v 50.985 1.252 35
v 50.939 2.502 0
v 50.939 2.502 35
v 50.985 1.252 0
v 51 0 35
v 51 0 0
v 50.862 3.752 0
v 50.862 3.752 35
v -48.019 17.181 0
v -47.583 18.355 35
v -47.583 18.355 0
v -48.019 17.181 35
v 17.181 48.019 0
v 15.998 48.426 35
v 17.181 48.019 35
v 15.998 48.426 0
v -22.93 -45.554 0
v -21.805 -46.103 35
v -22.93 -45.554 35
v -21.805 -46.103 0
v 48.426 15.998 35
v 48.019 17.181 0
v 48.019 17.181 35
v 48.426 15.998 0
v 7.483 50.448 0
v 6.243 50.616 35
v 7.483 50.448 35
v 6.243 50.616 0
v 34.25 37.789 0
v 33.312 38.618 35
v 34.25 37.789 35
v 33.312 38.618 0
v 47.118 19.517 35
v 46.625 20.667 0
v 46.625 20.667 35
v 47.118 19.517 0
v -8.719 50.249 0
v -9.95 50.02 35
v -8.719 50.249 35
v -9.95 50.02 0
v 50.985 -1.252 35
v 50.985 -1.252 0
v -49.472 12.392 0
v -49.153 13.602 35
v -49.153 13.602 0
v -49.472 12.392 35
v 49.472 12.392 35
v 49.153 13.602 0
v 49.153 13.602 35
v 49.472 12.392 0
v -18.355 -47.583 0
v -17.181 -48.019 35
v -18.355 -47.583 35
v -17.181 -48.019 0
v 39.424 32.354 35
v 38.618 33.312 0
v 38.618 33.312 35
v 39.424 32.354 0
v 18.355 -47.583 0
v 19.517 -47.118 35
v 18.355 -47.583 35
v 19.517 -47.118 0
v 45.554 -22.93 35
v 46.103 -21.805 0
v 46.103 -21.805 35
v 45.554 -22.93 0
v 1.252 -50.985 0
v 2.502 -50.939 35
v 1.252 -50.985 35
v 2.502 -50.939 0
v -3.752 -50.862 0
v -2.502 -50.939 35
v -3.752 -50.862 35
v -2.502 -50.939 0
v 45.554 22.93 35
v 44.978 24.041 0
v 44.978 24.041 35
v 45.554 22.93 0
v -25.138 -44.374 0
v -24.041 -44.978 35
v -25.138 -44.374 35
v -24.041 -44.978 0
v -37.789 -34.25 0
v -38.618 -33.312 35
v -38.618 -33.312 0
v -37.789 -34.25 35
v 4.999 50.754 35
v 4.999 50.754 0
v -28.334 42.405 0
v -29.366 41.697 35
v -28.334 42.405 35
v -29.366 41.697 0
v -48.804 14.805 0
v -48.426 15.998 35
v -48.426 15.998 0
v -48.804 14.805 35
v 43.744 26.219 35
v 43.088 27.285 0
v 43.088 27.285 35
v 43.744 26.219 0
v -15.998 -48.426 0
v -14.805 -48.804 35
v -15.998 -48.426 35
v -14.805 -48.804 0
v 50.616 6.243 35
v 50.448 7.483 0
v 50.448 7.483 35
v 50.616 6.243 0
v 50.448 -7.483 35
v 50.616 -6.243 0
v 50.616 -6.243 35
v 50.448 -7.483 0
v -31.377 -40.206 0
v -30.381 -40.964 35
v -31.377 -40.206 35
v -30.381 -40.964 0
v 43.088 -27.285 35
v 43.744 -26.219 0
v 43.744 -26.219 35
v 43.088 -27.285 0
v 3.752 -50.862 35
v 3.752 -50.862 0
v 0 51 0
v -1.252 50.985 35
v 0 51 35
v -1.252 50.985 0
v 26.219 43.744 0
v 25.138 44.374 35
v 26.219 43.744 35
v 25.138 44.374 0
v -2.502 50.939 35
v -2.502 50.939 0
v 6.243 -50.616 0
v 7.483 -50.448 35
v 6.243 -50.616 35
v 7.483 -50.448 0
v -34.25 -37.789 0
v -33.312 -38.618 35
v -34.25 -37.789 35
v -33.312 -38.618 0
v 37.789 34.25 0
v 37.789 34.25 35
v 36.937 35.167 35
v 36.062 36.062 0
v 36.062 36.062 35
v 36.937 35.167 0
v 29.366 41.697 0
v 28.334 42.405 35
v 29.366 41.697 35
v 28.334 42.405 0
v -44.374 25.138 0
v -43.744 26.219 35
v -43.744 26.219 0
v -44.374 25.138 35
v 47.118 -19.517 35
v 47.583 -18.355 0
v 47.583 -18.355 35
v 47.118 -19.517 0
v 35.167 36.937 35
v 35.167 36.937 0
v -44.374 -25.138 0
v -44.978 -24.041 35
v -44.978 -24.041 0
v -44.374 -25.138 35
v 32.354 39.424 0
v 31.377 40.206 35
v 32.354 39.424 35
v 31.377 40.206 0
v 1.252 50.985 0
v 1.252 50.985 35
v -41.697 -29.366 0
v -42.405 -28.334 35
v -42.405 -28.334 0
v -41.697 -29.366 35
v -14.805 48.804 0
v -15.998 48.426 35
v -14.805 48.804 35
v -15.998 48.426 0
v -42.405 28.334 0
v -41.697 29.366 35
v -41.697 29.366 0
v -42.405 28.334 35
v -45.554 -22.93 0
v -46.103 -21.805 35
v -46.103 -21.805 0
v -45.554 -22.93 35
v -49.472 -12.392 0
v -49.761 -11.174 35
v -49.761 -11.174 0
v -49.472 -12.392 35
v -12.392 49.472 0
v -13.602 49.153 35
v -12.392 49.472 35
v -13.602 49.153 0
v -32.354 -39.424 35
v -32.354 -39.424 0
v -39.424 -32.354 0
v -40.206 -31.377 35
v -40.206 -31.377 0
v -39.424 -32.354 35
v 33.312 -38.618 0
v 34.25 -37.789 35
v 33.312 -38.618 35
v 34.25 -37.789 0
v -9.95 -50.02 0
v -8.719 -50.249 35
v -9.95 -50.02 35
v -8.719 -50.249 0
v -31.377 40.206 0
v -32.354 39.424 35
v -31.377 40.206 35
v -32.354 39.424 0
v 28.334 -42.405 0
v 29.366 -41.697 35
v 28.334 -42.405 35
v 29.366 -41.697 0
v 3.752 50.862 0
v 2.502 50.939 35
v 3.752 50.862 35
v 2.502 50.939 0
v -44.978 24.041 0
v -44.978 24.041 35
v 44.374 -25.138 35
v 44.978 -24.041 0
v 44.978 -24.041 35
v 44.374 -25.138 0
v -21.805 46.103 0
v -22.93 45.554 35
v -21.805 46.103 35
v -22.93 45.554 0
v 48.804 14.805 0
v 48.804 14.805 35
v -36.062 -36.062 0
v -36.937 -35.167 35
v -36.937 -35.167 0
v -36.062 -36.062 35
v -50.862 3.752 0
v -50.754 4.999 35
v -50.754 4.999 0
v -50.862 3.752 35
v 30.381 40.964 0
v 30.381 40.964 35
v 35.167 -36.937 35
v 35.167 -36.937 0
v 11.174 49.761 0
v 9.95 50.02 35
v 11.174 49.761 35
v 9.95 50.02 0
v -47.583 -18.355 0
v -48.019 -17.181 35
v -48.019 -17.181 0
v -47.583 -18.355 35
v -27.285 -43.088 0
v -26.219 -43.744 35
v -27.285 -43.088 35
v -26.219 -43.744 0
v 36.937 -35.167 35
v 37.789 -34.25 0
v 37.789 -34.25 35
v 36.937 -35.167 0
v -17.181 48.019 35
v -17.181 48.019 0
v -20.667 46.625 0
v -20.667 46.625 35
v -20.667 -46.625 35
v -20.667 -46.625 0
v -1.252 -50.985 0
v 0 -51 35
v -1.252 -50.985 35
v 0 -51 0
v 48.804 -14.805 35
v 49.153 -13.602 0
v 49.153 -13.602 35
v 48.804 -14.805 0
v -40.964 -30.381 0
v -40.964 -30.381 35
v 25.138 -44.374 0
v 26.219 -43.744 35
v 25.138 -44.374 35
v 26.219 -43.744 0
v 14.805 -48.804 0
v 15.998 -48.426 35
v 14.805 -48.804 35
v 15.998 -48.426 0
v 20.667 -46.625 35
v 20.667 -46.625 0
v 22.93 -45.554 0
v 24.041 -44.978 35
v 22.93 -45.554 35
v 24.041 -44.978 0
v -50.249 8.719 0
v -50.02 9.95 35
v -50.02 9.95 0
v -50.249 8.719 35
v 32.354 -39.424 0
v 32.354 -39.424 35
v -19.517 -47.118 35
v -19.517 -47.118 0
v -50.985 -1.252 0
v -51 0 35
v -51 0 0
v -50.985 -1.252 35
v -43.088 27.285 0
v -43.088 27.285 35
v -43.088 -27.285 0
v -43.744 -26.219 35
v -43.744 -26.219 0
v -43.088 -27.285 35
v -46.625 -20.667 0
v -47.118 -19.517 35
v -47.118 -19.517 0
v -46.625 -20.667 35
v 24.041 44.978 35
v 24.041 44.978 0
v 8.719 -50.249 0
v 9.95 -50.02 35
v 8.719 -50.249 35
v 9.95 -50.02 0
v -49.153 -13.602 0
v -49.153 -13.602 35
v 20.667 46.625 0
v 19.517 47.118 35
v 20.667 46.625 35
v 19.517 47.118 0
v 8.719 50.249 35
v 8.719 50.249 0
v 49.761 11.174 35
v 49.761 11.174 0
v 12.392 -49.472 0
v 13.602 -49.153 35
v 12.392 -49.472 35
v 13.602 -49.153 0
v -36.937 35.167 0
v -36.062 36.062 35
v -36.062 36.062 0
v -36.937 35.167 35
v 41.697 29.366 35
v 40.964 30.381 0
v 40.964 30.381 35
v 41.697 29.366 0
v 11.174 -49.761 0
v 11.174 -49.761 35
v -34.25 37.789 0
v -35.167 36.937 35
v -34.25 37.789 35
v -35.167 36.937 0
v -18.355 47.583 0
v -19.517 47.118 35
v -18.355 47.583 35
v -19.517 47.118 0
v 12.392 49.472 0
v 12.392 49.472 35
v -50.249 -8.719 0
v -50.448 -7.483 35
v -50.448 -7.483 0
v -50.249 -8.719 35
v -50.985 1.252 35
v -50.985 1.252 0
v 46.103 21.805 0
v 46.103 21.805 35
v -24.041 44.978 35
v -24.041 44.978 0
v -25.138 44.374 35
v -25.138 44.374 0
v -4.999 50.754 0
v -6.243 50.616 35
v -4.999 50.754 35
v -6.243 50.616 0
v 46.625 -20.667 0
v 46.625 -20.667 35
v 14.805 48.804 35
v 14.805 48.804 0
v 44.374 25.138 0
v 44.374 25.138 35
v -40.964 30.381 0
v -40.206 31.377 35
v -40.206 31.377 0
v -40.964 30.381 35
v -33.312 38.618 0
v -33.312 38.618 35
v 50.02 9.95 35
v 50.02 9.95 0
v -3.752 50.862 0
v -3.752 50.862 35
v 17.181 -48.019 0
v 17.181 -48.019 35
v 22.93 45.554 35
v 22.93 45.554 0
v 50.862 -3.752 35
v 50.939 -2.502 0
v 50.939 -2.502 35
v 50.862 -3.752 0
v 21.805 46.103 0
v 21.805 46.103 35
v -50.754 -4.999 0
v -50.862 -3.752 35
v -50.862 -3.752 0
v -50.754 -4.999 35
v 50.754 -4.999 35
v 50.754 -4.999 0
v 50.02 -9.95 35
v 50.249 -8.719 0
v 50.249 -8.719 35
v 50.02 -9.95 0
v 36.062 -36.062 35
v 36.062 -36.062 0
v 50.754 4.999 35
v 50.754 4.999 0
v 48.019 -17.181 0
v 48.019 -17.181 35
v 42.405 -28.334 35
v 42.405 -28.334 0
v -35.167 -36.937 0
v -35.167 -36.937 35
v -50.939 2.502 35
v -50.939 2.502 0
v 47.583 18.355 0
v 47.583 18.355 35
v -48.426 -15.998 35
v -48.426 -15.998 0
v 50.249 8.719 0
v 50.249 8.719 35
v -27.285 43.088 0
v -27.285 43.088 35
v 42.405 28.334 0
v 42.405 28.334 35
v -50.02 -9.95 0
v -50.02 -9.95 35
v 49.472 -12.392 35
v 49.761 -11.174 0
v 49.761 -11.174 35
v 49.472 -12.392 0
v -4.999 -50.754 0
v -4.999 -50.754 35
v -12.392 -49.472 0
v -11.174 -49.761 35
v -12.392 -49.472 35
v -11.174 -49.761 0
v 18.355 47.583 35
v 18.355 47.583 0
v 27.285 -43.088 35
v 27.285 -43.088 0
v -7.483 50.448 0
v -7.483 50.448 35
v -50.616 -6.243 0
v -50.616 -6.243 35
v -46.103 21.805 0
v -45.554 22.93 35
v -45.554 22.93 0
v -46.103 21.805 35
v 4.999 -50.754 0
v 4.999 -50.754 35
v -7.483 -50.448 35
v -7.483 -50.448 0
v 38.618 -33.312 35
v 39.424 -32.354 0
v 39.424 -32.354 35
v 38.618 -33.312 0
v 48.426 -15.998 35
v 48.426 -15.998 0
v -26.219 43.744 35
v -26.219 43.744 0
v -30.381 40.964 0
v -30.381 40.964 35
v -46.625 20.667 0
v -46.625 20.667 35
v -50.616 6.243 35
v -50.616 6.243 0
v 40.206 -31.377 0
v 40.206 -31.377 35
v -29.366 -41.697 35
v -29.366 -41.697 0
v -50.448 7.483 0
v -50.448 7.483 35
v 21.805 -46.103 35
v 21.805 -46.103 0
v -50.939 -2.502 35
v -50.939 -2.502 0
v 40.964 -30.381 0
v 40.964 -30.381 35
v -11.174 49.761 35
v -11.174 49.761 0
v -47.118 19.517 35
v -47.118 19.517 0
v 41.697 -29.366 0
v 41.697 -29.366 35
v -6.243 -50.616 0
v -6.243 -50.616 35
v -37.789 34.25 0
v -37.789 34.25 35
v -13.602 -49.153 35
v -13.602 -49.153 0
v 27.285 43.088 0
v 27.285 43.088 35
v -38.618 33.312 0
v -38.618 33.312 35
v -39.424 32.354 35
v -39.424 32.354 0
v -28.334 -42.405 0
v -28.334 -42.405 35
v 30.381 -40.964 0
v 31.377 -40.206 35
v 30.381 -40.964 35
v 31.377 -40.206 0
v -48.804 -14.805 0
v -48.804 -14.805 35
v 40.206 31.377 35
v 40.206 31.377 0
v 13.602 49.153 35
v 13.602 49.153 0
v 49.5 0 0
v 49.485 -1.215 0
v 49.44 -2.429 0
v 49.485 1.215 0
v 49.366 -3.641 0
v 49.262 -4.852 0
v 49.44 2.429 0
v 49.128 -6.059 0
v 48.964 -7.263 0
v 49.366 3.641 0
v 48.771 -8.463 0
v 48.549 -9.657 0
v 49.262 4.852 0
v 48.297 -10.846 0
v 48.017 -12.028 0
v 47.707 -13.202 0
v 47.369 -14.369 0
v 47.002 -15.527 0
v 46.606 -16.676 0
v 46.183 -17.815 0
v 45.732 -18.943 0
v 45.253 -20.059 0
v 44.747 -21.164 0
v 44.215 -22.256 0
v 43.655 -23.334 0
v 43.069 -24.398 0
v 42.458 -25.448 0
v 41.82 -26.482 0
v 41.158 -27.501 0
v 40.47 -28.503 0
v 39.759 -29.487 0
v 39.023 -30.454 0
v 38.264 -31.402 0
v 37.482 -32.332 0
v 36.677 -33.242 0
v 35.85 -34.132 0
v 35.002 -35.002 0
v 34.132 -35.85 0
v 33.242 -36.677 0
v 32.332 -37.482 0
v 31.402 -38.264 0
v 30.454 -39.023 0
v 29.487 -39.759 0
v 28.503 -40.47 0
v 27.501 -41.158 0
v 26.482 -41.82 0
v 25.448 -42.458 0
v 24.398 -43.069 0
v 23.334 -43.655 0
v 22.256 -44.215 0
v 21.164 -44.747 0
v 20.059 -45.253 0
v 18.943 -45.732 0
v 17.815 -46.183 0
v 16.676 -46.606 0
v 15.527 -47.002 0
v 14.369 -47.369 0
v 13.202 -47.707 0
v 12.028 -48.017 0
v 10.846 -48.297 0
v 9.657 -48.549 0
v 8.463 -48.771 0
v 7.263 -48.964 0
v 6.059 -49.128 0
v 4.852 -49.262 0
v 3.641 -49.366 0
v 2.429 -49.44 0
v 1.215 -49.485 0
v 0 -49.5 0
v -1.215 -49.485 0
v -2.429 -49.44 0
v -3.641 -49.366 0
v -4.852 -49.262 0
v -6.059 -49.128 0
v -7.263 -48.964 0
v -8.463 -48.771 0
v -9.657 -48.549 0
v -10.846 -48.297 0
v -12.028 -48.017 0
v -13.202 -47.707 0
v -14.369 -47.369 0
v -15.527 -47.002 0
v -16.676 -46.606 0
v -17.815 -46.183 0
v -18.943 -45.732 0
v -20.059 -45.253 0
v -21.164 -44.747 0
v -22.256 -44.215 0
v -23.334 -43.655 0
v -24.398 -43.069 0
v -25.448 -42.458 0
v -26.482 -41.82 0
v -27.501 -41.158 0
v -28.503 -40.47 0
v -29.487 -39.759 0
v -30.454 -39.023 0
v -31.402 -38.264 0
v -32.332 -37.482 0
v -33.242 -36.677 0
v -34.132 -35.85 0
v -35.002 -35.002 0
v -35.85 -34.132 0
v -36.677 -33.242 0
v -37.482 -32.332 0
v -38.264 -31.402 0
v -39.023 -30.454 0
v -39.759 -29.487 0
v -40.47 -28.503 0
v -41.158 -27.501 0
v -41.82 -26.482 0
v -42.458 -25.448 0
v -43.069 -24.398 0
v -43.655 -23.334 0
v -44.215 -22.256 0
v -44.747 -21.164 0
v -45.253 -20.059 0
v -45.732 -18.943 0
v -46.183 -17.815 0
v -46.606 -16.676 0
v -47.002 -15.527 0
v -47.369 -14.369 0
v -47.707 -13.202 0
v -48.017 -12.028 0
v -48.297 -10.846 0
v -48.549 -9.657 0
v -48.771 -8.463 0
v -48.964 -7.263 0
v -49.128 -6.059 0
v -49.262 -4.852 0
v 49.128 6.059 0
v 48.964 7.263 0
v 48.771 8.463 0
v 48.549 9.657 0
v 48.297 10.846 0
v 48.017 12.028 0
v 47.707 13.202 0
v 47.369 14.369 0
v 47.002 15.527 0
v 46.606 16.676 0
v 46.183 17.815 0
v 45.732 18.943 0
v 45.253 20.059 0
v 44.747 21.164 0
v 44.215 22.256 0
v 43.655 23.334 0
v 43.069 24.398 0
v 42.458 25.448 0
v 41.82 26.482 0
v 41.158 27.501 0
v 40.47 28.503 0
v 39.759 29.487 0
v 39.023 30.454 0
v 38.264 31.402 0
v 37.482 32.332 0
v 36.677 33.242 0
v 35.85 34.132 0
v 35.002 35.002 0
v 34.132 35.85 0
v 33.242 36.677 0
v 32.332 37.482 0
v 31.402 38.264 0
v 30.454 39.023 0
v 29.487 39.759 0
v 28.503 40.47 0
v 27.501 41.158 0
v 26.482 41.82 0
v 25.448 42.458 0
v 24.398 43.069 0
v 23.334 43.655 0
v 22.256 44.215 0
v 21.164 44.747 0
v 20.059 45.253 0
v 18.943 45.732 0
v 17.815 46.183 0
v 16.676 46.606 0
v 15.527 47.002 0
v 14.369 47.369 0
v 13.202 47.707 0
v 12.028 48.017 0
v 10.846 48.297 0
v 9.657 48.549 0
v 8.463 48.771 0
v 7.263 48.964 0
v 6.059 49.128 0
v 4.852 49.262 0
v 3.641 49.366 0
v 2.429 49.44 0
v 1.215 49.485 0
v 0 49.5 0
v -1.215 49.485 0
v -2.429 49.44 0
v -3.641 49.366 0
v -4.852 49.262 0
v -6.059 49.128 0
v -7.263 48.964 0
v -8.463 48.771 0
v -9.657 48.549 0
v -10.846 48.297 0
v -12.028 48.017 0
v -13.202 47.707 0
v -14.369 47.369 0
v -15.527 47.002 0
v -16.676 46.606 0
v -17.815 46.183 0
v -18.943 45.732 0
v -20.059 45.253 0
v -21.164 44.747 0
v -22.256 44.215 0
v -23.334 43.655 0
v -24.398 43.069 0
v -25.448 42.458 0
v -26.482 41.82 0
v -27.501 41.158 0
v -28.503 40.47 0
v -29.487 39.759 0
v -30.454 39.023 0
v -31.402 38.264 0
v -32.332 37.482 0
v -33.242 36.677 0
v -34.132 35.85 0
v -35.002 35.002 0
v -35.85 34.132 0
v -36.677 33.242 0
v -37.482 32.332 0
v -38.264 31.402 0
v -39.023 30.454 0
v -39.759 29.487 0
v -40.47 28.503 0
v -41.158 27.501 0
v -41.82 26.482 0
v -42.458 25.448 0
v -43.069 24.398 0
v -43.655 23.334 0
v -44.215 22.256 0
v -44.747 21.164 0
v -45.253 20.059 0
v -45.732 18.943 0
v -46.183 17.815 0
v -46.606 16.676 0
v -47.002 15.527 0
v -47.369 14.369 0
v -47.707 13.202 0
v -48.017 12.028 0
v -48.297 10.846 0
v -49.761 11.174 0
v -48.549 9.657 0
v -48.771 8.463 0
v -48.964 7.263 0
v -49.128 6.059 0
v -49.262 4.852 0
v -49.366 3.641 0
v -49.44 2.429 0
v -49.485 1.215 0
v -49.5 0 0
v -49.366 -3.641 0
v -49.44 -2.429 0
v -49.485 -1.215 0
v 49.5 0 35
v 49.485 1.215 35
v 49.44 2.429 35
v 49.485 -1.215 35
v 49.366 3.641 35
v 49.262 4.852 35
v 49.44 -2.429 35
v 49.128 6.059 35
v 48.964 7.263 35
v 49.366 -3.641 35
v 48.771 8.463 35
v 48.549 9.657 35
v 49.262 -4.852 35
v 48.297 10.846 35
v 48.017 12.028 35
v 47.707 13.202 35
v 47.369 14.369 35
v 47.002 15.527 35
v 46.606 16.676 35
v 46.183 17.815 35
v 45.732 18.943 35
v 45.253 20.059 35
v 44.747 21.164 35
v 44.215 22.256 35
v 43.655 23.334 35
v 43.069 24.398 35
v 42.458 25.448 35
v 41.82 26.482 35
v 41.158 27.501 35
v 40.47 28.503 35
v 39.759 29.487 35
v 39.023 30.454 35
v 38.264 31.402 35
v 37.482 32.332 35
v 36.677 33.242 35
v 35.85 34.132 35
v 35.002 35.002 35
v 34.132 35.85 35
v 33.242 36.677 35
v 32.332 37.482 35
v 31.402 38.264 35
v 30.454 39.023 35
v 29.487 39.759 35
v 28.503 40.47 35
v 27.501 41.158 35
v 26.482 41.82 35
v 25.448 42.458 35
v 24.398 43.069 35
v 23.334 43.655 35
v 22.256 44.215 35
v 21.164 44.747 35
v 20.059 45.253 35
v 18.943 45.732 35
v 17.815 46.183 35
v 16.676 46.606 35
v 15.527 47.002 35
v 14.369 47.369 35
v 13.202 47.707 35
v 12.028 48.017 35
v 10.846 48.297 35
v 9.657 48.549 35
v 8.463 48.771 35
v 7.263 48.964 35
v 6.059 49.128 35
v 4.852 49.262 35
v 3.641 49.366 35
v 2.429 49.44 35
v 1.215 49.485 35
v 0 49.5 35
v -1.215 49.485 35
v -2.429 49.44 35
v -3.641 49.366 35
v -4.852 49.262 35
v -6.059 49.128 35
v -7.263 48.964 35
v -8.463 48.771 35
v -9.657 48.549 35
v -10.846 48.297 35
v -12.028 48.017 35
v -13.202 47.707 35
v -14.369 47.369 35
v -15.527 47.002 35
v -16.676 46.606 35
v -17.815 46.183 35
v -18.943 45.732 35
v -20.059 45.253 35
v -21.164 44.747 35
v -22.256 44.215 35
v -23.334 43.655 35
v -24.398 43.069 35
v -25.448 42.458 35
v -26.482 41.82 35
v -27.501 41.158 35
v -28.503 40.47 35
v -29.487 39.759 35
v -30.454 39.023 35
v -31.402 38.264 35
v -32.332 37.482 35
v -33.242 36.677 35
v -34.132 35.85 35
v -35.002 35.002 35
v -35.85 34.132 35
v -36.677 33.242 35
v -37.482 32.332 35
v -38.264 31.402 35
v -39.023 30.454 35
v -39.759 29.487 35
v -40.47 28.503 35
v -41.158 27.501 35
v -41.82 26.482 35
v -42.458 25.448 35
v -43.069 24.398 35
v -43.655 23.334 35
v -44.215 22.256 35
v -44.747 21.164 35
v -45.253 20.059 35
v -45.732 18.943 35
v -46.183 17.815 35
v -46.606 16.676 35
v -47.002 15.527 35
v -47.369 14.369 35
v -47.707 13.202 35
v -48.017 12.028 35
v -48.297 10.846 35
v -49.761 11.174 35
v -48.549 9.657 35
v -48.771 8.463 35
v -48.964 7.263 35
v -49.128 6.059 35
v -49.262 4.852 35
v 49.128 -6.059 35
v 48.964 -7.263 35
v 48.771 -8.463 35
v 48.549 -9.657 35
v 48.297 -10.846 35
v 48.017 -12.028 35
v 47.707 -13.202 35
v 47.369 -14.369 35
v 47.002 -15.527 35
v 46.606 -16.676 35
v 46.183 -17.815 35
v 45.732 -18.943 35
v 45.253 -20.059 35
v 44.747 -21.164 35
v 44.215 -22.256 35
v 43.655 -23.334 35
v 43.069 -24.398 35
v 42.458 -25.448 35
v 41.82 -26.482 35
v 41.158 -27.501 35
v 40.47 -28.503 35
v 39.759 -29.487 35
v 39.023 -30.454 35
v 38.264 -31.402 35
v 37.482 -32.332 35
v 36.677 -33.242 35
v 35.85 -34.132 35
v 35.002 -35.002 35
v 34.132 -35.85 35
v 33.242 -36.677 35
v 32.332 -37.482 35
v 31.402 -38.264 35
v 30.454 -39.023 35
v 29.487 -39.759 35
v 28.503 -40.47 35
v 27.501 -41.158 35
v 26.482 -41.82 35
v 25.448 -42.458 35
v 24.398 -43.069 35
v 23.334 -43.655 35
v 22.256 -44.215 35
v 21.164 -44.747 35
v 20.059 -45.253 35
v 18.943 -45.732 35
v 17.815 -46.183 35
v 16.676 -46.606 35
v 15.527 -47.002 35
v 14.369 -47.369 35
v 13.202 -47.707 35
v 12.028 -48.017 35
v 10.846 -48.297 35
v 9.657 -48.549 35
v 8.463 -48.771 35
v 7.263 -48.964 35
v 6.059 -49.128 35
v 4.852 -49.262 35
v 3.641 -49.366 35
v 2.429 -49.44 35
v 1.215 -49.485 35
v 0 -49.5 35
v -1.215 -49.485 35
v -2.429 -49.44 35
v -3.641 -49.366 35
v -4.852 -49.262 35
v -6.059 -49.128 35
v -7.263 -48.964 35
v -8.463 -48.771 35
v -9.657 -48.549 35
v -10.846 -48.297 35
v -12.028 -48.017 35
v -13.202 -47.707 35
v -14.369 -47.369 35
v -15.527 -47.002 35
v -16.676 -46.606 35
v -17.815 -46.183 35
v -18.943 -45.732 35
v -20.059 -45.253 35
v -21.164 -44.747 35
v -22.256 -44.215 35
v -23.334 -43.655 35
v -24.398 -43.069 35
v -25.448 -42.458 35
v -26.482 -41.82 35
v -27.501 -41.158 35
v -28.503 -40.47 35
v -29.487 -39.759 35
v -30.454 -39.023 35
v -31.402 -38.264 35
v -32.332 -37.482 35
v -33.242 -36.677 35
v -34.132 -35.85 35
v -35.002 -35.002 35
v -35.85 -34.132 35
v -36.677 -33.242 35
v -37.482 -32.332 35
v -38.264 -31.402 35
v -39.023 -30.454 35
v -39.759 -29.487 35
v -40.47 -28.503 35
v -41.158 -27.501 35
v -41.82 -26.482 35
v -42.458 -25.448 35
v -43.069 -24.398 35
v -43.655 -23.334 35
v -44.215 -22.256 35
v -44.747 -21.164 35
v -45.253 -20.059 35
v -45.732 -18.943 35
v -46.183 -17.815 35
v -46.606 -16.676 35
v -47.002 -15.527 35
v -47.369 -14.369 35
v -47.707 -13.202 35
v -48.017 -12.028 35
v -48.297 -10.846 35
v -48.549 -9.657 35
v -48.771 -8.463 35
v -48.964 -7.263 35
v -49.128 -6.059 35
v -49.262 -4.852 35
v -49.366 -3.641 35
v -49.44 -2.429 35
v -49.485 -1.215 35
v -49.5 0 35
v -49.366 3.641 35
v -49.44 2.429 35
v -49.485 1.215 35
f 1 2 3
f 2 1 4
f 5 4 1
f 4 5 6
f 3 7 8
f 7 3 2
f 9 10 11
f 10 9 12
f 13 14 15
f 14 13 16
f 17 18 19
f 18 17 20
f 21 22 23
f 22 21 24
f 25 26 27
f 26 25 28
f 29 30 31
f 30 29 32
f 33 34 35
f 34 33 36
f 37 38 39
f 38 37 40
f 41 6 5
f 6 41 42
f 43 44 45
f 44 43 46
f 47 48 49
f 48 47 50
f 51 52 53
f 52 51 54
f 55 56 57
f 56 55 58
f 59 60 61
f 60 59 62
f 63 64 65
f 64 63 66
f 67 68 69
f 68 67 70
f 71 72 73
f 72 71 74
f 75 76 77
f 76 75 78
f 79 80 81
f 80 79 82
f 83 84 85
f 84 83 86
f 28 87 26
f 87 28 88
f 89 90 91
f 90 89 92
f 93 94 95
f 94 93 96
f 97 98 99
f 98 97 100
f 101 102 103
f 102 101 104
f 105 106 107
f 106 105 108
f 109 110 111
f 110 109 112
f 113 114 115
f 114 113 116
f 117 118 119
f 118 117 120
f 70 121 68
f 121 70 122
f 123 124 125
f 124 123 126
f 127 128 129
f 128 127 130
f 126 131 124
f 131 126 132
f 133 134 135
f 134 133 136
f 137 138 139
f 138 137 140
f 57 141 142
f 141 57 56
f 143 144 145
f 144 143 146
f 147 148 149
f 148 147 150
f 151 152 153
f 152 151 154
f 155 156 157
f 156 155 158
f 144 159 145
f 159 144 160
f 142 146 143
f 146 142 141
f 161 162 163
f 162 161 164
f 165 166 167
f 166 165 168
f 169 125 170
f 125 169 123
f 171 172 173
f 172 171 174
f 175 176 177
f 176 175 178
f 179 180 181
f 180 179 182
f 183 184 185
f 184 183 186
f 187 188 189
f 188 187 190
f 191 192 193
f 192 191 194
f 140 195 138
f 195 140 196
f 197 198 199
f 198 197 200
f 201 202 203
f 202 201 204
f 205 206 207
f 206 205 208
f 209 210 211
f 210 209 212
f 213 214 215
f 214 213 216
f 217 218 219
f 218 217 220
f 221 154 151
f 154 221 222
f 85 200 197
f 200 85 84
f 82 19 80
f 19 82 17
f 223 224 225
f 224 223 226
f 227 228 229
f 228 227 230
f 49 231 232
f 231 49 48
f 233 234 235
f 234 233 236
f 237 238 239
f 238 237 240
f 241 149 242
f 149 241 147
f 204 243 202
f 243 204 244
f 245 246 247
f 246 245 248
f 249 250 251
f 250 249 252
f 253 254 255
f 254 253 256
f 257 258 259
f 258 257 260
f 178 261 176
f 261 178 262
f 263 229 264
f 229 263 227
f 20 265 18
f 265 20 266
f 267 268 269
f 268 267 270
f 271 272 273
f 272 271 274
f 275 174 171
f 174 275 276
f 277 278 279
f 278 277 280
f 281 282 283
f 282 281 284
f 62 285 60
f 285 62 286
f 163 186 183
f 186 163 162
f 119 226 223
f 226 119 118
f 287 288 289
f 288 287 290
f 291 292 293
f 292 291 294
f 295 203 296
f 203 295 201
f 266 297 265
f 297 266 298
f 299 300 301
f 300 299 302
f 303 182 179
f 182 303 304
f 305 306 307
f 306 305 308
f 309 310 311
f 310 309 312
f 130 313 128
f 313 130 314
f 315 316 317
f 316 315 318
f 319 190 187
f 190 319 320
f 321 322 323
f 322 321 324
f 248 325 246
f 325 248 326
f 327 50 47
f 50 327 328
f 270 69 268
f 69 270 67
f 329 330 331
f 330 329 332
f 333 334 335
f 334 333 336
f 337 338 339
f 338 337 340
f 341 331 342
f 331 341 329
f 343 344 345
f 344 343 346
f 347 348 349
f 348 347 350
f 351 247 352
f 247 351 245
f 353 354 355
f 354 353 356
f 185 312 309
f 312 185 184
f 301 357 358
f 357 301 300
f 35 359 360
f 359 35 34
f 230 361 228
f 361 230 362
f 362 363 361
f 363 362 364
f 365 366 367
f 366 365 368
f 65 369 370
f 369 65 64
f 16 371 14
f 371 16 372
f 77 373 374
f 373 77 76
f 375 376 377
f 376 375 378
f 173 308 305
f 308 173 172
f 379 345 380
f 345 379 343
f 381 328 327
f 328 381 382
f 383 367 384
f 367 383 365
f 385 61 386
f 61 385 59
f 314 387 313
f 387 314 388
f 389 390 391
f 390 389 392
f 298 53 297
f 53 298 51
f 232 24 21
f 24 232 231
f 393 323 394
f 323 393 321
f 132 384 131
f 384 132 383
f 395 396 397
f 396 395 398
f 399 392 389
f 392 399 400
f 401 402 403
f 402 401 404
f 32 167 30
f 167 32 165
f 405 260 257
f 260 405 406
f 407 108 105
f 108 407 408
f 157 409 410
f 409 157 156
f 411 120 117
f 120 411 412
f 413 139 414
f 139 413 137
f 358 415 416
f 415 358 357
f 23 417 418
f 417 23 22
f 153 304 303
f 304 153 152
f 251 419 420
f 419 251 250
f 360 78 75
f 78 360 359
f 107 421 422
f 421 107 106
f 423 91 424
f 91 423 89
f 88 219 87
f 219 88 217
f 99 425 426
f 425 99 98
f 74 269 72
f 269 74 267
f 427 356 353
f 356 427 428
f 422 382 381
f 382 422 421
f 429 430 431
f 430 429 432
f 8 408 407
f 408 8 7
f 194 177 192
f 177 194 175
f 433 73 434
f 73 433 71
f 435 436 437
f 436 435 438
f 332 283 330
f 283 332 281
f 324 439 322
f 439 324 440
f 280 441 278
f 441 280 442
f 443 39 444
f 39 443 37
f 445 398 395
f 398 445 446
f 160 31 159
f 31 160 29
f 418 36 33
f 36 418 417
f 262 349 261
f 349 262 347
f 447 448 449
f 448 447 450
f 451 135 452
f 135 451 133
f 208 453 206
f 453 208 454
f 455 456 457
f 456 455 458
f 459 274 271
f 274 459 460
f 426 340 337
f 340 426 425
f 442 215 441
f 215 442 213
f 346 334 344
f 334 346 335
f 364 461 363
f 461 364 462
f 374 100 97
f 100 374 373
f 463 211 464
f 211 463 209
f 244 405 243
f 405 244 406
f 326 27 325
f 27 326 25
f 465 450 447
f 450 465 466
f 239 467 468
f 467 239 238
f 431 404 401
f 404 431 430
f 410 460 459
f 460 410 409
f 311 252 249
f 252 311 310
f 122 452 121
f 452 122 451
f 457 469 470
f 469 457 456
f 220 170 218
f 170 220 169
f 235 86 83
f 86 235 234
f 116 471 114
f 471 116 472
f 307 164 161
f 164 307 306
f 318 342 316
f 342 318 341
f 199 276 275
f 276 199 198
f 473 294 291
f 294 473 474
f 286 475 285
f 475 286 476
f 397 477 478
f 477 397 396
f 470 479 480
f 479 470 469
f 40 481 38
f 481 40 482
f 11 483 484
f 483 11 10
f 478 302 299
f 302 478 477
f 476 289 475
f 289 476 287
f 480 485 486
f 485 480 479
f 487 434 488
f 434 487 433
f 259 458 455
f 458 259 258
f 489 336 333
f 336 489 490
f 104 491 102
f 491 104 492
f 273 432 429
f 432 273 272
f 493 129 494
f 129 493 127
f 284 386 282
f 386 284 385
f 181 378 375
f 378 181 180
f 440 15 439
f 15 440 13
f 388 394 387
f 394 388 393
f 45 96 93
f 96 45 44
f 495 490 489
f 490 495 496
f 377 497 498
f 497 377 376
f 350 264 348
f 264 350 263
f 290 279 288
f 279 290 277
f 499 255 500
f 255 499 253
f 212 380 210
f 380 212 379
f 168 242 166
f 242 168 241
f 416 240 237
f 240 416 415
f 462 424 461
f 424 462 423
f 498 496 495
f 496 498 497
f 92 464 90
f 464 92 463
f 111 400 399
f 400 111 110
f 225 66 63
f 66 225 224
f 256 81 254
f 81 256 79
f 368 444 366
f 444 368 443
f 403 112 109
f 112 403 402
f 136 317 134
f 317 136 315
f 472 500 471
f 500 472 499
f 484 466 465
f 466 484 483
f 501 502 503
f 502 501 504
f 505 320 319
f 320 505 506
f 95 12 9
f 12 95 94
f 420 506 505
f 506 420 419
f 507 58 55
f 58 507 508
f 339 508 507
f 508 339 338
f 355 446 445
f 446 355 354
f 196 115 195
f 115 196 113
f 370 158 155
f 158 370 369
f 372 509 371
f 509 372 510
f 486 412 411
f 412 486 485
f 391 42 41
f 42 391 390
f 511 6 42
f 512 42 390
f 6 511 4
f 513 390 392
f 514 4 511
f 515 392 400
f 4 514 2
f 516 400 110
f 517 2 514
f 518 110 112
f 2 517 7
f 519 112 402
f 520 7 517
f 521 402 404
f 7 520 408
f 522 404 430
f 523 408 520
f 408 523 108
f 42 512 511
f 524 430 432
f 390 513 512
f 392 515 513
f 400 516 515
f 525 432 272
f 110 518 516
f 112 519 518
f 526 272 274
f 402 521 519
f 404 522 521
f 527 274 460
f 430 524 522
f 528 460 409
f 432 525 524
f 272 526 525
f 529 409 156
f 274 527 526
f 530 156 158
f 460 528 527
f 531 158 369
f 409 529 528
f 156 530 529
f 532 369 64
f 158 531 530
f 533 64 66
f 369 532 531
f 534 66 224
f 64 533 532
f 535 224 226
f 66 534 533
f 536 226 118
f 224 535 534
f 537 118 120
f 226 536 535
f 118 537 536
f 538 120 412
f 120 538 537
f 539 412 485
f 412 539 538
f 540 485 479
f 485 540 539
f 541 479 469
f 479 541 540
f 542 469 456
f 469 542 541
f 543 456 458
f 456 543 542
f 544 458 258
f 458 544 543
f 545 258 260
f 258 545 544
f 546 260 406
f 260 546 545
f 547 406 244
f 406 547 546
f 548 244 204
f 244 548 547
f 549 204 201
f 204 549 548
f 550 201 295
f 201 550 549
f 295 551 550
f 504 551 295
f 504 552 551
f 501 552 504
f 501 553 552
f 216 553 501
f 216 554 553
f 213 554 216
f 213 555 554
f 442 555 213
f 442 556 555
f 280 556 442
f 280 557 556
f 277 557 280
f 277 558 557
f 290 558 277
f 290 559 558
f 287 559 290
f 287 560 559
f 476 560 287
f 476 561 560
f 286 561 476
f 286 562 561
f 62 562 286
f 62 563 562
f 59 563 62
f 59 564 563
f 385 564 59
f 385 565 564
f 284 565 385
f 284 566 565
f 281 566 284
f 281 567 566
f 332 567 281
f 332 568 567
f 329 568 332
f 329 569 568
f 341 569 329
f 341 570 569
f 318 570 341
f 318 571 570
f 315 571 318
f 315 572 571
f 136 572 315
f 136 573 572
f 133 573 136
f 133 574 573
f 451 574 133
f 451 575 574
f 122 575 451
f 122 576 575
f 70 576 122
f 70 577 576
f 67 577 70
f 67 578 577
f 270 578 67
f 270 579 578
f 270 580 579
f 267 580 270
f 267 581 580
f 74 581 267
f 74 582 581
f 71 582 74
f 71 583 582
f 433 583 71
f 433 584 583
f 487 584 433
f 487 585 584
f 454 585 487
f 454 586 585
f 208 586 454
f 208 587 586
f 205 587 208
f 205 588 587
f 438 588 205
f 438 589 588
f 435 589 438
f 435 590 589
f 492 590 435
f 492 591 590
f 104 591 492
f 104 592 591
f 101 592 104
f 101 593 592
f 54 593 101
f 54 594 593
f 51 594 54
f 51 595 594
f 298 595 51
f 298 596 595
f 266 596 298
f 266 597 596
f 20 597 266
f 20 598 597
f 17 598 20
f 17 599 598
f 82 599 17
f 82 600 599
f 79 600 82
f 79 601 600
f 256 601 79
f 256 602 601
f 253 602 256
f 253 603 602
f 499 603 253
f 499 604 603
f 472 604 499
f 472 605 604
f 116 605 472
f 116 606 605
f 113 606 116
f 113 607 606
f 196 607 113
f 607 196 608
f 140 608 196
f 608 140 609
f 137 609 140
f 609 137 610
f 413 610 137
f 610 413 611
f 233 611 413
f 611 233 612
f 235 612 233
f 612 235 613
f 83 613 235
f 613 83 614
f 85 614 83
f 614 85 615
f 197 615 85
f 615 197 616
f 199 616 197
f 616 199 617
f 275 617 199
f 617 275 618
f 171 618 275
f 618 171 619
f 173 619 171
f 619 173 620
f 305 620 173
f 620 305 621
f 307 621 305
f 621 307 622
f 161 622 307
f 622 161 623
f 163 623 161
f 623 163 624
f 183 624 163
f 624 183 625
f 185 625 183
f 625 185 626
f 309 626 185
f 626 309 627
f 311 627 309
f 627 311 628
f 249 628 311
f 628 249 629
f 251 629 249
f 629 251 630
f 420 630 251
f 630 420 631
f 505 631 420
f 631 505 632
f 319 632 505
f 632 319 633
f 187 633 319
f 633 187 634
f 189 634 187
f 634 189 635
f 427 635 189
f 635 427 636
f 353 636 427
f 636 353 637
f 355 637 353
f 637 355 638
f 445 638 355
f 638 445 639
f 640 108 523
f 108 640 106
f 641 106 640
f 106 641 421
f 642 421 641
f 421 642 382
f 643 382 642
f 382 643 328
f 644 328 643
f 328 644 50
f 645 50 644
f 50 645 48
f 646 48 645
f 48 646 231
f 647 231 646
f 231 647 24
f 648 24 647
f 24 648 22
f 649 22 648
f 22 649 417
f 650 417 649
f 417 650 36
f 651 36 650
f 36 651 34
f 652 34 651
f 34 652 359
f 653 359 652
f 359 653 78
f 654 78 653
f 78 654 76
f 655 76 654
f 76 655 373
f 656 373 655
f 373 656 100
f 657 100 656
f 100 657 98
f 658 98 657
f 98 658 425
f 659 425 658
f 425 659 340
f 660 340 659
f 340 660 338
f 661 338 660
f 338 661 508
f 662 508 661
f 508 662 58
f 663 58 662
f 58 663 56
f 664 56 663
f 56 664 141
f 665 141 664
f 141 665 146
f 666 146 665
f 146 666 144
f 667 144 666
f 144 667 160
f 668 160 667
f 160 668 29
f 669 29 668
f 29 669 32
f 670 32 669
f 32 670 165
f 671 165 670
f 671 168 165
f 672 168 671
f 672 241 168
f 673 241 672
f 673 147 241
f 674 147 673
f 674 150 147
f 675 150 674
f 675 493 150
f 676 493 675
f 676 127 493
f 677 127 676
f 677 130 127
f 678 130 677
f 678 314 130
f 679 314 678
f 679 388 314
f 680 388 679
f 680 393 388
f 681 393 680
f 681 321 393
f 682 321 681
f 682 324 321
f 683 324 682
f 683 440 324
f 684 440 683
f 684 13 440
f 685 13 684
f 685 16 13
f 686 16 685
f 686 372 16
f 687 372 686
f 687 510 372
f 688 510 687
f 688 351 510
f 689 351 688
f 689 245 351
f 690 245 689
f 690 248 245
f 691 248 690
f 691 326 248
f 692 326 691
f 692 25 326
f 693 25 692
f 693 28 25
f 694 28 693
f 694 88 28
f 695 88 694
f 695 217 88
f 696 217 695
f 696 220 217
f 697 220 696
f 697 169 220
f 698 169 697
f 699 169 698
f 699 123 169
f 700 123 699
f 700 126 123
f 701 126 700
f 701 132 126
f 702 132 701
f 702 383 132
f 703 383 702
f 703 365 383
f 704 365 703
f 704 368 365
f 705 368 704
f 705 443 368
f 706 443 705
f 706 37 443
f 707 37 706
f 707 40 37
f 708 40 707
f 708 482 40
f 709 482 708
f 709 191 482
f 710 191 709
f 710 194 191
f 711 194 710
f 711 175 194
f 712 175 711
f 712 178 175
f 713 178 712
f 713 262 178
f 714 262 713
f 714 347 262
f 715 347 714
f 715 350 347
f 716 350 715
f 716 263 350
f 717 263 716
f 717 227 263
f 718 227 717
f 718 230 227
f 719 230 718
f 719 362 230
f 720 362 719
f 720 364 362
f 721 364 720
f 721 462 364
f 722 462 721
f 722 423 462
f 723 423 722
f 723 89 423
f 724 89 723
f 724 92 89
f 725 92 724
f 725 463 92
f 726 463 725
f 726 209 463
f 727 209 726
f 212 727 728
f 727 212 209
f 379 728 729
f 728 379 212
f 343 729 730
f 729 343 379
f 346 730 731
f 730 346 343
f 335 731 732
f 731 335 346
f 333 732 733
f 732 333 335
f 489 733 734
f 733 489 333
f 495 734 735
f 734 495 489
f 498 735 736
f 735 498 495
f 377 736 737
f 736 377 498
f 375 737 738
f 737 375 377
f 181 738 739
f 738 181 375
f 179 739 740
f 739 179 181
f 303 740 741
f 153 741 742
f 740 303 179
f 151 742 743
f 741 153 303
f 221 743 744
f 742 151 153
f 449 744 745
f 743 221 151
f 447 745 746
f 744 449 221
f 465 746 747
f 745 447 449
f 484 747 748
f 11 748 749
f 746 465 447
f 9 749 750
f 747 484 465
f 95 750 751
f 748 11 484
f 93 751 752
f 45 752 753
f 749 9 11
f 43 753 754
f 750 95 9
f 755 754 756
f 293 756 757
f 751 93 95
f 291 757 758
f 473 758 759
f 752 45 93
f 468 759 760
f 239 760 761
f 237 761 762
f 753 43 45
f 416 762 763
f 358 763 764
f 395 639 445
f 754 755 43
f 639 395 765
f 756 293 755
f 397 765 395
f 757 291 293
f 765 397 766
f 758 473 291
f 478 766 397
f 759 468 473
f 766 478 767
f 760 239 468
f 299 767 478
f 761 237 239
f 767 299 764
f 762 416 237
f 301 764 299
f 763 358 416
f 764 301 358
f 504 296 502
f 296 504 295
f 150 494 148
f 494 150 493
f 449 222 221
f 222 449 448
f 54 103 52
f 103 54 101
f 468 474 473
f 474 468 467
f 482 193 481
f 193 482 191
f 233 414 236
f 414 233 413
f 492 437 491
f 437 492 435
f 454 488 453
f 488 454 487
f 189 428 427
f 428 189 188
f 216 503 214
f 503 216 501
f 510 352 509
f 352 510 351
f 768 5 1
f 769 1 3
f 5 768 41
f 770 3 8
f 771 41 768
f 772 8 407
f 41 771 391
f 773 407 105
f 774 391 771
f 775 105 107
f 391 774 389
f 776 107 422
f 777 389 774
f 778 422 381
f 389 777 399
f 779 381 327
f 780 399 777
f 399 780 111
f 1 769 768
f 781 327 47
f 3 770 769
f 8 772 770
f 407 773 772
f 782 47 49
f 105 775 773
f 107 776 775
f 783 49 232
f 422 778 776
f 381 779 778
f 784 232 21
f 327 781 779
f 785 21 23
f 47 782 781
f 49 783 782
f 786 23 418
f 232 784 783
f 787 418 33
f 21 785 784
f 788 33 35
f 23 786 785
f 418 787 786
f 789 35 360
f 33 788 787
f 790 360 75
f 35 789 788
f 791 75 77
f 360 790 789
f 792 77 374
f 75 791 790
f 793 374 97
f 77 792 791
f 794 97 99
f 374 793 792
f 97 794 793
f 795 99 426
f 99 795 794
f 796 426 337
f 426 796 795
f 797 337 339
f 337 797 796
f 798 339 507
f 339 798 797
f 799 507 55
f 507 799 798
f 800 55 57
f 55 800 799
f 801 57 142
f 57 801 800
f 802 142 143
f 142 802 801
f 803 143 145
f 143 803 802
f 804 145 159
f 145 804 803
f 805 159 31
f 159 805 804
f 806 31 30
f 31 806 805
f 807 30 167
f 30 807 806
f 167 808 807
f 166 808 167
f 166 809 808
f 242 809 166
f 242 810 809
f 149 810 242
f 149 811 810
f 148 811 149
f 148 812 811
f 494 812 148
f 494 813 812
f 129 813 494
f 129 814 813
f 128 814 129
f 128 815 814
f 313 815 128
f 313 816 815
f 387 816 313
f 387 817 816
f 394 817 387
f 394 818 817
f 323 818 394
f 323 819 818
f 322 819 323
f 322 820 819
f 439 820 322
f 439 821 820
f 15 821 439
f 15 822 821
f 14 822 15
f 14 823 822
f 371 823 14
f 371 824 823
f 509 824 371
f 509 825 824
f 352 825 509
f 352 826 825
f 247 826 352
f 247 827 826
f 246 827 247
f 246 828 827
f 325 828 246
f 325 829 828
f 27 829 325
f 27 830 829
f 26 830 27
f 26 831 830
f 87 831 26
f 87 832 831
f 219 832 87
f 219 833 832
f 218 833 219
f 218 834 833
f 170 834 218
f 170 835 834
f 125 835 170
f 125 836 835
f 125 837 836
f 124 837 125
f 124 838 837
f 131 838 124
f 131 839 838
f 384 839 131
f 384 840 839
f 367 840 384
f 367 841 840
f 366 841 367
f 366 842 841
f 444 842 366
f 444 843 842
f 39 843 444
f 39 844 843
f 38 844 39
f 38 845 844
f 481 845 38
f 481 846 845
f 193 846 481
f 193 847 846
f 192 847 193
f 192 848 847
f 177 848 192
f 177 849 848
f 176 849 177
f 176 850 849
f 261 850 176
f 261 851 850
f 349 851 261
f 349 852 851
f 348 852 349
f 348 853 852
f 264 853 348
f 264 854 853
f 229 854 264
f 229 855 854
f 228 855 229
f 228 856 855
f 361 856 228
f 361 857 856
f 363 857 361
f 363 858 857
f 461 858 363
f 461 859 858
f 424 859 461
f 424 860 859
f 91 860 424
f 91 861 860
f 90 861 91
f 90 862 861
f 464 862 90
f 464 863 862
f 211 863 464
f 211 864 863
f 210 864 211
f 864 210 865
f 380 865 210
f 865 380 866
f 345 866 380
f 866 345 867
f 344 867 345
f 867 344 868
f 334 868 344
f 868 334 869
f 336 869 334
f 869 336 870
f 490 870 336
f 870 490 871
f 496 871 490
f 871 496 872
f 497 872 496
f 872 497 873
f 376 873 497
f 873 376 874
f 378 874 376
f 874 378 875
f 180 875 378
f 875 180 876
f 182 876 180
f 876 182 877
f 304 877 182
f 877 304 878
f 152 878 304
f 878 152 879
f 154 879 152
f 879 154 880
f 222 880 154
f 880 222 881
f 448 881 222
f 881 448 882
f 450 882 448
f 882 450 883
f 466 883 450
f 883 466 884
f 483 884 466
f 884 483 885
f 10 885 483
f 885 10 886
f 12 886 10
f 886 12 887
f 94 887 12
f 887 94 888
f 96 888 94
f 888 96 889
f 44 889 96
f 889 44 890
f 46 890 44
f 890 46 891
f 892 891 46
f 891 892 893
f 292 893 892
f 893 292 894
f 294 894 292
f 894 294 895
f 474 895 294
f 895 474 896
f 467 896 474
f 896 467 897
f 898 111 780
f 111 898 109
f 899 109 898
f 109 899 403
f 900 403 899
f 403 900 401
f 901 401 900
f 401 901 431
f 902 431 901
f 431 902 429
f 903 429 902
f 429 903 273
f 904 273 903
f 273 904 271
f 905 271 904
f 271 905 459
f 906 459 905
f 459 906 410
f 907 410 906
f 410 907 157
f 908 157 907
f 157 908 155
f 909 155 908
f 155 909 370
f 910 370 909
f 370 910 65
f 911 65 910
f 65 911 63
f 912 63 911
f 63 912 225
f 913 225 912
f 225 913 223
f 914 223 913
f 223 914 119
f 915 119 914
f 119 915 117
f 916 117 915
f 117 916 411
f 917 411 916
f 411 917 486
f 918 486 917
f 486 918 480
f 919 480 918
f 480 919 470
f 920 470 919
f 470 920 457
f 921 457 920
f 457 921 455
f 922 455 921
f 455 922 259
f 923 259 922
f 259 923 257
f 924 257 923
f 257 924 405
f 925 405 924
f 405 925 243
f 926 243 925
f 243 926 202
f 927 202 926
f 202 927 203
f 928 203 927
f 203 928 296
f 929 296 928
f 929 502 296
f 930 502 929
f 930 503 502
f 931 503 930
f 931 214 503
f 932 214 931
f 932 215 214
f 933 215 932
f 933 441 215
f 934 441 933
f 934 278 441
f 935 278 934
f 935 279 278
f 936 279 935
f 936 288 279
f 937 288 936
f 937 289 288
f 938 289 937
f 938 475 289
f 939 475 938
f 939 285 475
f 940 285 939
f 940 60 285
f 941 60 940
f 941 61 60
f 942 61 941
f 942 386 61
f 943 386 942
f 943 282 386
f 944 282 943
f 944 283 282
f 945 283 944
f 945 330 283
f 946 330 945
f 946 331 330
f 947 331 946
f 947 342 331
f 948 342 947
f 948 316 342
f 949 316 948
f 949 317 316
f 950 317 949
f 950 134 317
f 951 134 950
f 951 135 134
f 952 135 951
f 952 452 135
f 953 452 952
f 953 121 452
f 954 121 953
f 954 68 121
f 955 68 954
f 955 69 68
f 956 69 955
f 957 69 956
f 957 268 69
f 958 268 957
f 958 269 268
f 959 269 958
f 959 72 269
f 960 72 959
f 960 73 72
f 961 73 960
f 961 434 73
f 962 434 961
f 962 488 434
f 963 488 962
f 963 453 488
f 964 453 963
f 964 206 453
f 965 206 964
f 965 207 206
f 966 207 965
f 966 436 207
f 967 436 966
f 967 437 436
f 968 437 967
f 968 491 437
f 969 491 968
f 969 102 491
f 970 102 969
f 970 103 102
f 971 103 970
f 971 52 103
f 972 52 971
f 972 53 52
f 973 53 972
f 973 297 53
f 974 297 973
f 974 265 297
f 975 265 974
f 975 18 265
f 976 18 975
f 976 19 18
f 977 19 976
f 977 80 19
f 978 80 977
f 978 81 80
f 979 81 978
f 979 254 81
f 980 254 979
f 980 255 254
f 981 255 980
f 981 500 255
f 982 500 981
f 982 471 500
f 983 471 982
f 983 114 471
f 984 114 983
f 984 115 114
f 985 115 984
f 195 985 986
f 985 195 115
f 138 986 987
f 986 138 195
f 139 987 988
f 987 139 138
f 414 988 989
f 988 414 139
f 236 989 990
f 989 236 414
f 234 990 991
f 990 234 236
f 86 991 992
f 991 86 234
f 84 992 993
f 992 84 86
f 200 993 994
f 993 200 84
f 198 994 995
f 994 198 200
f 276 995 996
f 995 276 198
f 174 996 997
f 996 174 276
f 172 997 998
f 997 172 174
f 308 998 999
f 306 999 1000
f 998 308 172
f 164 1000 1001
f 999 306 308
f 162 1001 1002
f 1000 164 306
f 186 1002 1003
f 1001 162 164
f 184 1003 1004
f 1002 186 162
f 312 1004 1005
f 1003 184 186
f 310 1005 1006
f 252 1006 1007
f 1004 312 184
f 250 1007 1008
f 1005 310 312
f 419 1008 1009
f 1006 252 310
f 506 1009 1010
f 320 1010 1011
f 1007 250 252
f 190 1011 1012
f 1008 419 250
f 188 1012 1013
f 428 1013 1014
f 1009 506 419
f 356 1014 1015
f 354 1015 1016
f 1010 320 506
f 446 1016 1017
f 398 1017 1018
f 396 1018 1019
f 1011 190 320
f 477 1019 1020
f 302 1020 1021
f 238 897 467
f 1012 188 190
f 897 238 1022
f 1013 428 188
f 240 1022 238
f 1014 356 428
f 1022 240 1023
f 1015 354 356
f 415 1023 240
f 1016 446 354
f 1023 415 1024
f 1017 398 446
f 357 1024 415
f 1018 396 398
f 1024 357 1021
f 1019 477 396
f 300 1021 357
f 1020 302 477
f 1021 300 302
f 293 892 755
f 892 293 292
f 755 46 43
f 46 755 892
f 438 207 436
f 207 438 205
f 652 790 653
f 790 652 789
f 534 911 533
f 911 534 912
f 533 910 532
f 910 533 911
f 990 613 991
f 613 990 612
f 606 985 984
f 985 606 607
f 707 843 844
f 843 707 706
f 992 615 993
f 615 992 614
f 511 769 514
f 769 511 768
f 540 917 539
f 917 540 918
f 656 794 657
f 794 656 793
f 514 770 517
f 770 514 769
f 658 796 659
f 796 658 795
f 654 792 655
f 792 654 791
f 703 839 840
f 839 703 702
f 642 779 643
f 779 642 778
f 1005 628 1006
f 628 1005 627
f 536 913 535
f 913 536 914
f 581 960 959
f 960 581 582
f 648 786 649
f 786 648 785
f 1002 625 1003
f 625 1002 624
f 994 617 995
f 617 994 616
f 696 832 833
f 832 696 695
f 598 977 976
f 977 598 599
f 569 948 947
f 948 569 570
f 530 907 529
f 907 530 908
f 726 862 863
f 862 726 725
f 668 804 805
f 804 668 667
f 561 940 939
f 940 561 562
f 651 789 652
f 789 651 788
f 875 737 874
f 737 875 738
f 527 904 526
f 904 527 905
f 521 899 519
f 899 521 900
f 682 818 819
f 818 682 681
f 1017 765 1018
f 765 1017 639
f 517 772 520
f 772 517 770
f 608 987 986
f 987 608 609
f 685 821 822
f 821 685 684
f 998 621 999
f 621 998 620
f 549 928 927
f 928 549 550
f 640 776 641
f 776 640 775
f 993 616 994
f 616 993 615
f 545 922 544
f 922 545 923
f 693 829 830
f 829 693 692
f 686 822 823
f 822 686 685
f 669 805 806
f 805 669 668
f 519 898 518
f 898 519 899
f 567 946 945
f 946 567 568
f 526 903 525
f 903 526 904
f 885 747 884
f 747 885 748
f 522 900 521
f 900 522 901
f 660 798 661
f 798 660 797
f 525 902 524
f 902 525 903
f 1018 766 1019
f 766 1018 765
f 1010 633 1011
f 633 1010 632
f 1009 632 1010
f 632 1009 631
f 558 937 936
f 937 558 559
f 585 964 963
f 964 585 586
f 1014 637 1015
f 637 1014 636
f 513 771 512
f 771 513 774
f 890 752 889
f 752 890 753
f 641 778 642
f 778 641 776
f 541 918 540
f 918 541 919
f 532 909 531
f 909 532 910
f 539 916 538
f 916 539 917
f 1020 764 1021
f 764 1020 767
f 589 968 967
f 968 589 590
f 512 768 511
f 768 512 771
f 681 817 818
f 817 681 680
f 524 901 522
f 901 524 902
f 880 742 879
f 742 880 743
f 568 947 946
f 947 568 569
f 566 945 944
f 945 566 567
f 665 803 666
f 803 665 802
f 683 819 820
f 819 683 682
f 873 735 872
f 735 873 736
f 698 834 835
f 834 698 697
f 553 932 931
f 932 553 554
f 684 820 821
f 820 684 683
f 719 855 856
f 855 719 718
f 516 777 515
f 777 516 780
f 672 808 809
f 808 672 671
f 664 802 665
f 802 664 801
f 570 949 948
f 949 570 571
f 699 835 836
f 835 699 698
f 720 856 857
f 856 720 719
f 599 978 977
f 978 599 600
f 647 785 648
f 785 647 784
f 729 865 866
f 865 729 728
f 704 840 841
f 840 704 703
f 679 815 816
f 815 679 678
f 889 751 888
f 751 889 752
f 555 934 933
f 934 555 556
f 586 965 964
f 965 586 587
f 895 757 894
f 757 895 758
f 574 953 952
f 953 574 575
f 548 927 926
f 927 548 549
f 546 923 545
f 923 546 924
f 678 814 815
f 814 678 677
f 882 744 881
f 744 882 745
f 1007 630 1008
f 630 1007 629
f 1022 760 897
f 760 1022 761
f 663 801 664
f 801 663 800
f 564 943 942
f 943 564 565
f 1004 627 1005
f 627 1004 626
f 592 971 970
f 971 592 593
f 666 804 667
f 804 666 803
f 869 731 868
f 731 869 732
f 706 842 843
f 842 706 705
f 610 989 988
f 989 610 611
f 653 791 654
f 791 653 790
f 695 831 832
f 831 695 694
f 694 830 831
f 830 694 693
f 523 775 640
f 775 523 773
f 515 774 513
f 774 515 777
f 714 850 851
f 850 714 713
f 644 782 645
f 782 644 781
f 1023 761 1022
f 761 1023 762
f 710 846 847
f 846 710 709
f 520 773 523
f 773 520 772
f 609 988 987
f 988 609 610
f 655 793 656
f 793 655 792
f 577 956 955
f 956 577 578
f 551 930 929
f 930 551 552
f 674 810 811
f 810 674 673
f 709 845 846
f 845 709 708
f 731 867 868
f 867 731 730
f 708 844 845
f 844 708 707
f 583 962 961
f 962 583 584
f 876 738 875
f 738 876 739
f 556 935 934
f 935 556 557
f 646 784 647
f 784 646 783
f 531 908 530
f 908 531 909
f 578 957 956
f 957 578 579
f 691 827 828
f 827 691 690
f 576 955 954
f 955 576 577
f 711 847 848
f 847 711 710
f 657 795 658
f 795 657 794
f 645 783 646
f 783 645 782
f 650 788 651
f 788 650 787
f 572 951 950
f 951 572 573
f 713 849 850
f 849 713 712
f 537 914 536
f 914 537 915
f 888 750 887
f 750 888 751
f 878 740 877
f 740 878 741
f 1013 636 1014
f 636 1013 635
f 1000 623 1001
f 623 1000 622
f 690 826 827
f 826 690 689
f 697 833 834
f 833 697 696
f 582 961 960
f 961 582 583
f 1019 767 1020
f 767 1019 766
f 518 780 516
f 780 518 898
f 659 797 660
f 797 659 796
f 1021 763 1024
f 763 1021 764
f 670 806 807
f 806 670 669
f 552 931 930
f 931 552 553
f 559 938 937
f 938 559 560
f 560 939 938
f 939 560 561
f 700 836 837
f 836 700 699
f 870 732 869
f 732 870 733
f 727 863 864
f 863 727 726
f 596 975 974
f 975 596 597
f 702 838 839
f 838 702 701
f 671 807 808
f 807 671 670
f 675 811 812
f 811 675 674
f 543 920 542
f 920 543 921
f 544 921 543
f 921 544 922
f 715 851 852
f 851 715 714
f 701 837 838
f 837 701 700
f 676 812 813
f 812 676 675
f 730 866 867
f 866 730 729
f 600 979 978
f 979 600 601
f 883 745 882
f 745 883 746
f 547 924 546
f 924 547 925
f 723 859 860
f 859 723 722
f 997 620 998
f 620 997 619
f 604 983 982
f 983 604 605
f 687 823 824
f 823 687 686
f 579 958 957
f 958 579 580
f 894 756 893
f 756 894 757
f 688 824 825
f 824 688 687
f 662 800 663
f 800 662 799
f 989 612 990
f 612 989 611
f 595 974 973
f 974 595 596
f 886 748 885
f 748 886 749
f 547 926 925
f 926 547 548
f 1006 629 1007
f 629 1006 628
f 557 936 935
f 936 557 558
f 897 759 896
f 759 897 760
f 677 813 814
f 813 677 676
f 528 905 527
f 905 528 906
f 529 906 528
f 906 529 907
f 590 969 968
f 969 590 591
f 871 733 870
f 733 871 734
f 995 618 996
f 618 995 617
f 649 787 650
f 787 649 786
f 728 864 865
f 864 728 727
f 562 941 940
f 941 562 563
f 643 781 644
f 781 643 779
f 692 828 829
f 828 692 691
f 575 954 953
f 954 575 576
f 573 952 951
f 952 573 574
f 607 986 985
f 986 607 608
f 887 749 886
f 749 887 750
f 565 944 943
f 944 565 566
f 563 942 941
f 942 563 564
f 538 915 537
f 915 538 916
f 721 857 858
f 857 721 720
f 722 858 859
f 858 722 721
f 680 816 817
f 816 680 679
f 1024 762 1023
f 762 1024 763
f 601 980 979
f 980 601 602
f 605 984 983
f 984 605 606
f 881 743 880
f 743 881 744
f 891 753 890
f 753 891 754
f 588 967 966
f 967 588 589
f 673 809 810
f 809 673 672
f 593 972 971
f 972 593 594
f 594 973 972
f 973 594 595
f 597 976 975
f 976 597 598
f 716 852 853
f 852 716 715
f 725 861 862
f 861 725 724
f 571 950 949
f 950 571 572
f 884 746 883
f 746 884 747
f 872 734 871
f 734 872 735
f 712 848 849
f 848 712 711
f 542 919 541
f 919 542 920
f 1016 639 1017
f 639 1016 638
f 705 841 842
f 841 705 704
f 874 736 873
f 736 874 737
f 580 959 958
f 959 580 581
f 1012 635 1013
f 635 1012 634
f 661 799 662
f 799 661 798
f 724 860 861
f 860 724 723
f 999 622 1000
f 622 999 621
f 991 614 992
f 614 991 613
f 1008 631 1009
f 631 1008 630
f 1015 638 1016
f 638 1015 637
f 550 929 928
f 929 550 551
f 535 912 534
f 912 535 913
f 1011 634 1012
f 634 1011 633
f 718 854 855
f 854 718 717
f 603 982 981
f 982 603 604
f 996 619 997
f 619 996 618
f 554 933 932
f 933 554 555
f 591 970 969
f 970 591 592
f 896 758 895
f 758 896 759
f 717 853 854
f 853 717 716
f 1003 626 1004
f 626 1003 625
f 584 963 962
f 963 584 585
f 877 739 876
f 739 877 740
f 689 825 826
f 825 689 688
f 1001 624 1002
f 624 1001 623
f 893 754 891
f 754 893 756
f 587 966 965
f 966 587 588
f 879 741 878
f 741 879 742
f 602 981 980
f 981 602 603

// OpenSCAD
$fn=256;

difference() {
  cylinder(d =102, h = 35); 
  translate([0,0,-1]) cylinder(d =99, h = 46);  
}
